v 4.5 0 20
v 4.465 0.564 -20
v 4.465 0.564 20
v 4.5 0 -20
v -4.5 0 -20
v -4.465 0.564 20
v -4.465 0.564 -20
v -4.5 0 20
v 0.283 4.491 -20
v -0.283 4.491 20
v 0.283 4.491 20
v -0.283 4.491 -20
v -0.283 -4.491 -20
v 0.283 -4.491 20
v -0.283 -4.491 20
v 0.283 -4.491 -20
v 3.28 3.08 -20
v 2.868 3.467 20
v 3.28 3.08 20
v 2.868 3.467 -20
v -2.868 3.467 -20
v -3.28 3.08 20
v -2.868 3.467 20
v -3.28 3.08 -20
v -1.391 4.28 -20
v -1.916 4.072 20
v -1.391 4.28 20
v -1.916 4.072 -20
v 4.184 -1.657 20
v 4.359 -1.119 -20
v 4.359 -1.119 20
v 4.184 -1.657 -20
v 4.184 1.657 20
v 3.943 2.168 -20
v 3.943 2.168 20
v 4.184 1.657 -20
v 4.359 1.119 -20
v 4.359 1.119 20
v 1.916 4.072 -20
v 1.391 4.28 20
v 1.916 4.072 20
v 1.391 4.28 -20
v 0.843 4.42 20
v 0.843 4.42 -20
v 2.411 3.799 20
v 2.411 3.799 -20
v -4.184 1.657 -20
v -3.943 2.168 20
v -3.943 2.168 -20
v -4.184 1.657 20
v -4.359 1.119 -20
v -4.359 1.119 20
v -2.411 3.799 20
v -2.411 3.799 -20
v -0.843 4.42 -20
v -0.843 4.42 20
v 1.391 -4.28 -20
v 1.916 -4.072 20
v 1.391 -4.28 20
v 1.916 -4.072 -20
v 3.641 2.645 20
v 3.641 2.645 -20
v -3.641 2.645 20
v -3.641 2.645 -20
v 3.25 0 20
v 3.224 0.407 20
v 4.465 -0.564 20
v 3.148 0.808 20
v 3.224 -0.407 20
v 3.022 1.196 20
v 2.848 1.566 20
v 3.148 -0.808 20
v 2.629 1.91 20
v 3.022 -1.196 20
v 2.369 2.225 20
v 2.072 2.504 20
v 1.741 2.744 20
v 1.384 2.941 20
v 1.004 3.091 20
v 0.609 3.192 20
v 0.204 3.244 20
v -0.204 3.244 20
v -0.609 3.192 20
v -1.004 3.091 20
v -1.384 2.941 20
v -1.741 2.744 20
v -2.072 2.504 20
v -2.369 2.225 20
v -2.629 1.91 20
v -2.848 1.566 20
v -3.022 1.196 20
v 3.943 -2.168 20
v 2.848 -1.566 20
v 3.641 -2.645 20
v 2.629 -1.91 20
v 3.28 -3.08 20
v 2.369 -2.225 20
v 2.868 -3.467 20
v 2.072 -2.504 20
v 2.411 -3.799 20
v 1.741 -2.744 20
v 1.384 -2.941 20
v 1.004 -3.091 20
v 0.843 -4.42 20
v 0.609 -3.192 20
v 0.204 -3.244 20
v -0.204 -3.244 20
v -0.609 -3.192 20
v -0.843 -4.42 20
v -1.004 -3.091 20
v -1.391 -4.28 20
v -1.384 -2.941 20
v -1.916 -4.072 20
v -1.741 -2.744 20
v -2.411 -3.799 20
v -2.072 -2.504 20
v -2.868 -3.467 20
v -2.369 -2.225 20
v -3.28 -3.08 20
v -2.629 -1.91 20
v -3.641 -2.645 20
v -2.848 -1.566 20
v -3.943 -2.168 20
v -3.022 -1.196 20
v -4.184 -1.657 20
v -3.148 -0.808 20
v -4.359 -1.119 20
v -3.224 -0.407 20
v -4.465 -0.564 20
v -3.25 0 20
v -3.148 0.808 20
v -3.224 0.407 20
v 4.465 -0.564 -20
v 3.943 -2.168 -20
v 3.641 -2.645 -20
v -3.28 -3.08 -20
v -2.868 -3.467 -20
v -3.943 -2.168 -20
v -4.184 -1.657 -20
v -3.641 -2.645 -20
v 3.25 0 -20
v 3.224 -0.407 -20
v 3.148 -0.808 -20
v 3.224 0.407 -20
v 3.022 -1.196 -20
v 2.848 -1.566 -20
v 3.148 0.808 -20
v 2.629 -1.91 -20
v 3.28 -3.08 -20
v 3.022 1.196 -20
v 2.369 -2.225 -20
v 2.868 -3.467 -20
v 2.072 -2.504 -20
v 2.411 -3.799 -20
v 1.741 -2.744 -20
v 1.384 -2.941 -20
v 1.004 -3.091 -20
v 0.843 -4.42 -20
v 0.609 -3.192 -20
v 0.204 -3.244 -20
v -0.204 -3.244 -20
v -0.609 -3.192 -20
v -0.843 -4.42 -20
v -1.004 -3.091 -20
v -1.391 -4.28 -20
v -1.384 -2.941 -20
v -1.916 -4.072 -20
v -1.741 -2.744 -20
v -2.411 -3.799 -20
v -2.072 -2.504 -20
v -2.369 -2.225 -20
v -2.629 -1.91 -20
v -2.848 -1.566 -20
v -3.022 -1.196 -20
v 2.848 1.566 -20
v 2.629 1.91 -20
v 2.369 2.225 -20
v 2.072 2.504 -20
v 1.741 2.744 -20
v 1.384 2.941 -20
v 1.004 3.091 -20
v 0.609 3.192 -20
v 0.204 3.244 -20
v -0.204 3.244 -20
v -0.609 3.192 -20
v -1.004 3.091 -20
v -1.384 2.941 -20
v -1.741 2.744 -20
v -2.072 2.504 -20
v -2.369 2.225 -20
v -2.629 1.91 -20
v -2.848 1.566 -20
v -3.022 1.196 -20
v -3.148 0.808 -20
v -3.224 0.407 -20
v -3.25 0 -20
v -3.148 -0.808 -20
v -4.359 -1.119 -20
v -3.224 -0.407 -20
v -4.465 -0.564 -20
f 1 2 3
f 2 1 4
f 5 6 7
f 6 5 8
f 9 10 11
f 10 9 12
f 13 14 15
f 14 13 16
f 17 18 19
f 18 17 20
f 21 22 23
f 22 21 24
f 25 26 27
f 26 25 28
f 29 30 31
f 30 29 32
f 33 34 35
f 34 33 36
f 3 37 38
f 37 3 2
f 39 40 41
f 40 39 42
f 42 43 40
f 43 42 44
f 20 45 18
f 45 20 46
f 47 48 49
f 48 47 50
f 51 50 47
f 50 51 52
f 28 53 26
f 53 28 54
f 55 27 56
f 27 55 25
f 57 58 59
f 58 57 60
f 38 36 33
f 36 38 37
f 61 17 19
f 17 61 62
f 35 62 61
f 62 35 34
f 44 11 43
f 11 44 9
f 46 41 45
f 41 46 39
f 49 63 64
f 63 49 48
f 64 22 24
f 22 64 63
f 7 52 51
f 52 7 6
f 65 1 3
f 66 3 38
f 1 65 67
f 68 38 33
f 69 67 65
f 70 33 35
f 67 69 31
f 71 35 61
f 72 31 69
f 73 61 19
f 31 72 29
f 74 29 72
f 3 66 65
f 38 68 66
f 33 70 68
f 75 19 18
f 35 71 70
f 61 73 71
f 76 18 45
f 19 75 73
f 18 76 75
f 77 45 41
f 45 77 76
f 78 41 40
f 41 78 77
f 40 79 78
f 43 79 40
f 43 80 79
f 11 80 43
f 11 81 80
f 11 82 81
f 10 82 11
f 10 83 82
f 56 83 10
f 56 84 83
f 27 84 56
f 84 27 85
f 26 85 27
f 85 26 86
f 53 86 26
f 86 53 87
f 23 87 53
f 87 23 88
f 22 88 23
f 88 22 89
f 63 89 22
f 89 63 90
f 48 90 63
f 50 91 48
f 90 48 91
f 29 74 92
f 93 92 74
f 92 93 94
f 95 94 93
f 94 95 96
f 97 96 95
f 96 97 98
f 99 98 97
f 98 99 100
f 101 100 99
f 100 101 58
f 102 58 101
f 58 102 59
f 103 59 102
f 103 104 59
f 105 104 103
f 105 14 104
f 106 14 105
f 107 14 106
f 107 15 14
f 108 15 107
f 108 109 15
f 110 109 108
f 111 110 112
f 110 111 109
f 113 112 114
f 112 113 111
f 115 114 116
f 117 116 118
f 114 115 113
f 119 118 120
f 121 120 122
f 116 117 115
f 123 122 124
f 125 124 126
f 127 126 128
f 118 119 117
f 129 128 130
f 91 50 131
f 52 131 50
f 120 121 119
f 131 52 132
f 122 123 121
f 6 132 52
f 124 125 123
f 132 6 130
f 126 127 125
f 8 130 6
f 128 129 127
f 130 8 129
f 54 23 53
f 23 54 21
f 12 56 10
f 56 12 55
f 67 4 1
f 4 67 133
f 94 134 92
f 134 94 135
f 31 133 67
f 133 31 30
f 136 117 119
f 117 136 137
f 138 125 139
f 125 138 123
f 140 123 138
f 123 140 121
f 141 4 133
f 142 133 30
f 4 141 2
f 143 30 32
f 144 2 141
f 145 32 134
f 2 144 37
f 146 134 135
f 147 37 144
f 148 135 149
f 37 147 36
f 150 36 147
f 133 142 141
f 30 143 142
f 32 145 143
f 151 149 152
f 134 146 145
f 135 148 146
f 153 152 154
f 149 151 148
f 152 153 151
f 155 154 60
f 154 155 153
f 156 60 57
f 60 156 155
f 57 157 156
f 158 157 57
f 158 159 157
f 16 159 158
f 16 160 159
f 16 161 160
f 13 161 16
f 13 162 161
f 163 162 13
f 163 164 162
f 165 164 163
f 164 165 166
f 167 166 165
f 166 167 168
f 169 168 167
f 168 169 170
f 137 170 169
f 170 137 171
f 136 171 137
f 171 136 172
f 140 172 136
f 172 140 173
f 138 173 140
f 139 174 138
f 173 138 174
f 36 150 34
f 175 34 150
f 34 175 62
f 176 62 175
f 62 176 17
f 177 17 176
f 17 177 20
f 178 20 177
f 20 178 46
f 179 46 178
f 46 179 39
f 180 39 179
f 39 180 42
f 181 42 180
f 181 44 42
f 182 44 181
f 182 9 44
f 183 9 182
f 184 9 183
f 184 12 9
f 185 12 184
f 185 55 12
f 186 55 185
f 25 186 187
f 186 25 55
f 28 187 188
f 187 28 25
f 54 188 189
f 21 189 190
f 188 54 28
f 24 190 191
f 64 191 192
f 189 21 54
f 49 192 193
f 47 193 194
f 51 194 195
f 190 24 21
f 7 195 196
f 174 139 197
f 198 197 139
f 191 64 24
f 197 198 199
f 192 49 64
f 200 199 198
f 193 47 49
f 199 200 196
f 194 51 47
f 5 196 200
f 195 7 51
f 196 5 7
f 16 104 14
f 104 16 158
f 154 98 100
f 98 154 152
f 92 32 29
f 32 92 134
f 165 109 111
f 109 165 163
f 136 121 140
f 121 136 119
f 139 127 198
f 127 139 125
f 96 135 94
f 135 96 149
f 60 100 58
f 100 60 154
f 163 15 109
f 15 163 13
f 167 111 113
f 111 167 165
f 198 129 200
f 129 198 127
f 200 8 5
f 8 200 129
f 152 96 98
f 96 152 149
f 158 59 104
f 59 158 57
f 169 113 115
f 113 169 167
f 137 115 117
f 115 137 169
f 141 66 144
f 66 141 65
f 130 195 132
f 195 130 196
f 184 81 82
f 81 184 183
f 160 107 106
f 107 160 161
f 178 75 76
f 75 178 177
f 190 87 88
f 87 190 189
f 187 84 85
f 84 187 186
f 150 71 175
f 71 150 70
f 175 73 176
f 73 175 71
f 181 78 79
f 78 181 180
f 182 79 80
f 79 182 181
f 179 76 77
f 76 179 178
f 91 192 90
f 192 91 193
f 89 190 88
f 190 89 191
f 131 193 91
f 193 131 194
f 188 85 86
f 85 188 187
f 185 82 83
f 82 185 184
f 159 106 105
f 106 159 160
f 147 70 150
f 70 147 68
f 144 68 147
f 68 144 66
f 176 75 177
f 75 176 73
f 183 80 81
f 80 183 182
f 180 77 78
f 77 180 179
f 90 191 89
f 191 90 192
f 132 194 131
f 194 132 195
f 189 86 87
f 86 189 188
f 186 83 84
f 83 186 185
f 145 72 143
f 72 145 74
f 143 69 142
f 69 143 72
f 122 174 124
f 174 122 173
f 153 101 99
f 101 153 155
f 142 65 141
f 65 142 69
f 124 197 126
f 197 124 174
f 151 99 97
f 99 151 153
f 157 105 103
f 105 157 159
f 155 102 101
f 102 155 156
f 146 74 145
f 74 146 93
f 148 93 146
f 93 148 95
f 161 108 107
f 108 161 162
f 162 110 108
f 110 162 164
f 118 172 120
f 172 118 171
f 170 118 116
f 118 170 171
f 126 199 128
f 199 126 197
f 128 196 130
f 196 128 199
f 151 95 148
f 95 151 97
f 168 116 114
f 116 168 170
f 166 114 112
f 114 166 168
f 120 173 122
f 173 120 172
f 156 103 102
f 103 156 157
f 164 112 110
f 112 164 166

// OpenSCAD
$fn = 50;


difference() {
	union() {
		translate(v = [0, 0, -20.0000000000]) {
			cylinder(h = 40, r = 4.5000000000);
		}
	}
	union() {
		translate(v = [0, 0, -100.0000000000]) {
			cylinder(h = 200, r = 3.2500000000);
		}
	}
}
